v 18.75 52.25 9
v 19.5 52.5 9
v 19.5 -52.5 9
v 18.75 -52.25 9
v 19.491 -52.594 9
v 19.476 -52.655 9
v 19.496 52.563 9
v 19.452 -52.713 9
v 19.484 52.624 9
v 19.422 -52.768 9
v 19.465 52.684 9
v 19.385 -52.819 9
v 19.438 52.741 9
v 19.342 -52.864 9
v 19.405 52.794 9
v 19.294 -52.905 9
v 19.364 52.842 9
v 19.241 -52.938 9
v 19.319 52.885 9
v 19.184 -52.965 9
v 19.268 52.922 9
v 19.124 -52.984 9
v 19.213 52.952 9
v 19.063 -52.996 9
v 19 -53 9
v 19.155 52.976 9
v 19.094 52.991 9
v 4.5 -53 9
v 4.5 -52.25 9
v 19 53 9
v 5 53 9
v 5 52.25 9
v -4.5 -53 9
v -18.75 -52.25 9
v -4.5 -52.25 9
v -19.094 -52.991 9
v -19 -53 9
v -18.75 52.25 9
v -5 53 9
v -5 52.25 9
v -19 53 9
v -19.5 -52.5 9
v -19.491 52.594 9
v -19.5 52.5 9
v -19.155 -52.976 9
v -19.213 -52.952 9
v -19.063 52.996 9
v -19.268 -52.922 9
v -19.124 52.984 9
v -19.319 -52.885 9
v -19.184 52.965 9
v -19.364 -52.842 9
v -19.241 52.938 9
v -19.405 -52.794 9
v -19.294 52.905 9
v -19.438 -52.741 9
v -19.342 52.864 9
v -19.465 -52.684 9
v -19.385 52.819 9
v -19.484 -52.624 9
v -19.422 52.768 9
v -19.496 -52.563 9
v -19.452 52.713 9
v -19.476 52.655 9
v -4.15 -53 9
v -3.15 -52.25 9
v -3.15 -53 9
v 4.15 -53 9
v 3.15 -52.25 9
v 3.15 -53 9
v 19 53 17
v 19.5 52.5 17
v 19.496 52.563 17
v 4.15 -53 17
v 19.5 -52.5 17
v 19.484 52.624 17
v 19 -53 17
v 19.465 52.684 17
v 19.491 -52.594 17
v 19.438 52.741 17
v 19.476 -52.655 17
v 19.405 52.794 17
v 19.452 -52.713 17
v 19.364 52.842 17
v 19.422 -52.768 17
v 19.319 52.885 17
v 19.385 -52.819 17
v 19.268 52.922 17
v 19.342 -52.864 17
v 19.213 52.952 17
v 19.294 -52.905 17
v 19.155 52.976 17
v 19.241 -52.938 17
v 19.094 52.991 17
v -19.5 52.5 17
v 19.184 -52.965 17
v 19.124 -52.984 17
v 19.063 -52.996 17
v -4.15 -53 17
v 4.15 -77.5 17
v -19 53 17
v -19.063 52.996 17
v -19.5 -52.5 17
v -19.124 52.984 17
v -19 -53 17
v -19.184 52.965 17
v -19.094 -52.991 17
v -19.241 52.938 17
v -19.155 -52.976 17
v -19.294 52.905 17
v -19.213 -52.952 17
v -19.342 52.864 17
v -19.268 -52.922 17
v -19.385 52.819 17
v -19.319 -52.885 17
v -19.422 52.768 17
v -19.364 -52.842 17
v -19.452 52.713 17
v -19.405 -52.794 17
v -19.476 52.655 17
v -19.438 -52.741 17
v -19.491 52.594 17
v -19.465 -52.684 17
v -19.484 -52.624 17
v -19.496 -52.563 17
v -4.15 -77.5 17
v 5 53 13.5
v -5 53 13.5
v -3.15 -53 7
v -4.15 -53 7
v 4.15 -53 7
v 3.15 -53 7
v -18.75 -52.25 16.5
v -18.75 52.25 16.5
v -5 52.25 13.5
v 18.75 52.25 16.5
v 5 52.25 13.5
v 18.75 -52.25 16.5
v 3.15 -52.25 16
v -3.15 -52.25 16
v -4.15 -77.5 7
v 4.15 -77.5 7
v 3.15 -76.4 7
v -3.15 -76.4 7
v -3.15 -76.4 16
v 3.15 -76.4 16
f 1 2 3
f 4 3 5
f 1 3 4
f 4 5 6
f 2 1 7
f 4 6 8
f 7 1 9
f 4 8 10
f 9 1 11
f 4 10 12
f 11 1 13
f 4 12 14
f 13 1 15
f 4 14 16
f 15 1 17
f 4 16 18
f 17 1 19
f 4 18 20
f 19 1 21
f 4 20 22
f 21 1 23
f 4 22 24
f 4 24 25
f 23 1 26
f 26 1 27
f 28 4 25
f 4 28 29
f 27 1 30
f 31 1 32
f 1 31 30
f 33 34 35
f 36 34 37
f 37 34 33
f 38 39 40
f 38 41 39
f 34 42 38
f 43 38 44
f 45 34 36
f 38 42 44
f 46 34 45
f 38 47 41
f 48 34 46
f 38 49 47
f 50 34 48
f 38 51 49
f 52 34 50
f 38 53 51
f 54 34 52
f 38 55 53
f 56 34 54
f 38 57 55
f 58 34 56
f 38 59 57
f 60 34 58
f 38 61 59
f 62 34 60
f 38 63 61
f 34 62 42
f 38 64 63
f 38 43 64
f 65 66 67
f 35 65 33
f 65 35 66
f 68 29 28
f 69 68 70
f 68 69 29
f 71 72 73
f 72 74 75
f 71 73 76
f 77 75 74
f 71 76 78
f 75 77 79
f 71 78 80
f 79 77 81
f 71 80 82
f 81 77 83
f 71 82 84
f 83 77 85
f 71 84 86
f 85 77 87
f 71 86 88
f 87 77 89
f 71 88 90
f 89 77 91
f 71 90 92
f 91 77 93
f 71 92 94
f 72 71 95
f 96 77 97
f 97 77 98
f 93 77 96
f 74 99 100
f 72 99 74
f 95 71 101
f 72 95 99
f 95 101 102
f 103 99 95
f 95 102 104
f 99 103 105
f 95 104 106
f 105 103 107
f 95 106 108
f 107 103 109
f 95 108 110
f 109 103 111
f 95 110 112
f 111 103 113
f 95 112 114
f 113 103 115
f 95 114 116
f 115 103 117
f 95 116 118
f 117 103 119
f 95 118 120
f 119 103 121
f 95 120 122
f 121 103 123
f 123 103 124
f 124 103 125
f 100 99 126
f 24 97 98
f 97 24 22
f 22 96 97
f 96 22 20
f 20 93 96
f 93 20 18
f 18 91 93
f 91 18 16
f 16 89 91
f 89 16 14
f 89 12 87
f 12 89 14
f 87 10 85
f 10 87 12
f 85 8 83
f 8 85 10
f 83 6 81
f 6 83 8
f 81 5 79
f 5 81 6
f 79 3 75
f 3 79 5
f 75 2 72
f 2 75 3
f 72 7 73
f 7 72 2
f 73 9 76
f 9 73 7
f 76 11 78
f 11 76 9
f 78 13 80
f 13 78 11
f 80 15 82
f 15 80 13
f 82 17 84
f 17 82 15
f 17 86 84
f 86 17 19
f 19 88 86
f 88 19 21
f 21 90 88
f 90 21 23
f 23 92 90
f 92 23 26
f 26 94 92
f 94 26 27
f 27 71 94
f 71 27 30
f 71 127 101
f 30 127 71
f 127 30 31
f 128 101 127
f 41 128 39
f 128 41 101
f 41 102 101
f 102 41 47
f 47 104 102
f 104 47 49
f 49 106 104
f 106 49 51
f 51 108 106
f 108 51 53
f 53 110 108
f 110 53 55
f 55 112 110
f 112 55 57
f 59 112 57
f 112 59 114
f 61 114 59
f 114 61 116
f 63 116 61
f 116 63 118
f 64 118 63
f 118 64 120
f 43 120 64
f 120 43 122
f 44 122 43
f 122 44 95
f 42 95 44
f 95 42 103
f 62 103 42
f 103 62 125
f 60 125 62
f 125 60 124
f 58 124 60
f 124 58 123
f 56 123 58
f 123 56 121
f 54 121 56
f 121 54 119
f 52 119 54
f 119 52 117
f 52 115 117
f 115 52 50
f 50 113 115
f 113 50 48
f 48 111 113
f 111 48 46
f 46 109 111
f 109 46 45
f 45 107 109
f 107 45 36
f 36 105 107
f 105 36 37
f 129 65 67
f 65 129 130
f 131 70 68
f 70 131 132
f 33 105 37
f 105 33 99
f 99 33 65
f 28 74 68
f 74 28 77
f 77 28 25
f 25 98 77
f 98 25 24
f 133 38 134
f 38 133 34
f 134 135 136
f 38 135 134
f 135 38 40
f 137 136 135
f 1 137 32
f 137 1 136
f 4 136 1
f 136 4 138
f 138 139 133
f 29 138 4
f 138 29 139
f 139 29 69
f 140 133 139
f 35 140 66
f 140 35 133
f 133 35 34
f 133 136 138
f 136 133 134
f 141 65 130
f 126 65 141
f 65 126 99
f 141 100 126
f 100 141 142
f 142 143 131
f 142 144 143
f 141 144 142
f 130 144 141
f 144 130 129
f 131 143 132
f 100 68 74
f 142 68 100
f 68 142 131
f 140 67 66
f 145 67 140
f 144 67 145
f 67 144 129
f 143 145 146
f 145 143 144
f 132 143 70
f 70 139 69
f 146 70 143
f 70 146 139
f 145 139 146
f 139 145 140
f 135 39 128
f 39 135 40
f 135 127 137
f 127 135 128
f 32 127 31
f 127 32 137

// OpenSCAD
$fn=50;

BOX_W = 38;
BOX_L = 105;
BOX_H = 8.0;
WALL = 0.5;
CORNER_RADIUS = 0.5;

MIC_OUTSIDE_WIDTH=8.3;
MIC_OUTSIDE_HEIGHT=10.0;
MIC_INSIDE_WIDTH=6.3;
MIC_LENGTH=24.5;

MIC_OFFSET_X = 0;
MIC_OFFSET_Y = -34.0;
MIC_OFFSET_Z = 0;

VENT_OFFSET = -4.5;
VENT_L = 19.0;
VENT_R = -19.0;

module roundedRectangle(width, length, radius) {
    difference() {
        offset(r=radius) square([width, length], center=true);
        offset(r=radius - WALL) square([width - WALL, length - WALL], center=true);
    }
}

module mainLid() {
    // sides of box
    linear_extrude(BOX_H)
    roundedRectangle(BOX_W, BOX_L, CORNER_RADIUS);
    // base of box
    translate([0, 0, BOX_H - WALL]) {
        linear_extrude(WALL) square([BOX_W, BOX_L], center=true);
    }
}

module micBox() {
        translate([0, -53.0, 3])
        rotate([90, 0, 0])
        linear_extrude(MIC_LENGTH) square([MIC_OUTSIDE_WIDTH, MIC_OUTSIDE_HEIGHT], center=true);
    }
//}

module vent(x, y, vent_offset) {
    translate([x, y, BOX_H + vent_offset]) {
        rotate([90, 0, 90]) {
            cylinder(h=3.0, d=2.0, center=true);
        }
    }
}

module cutouts() {
    translate([MIC_OFFSET_X, MIC_OFFSET_Y, MIC_OFFSET_Z]) {
        // Inside mic channel
        translate([0, -13.8, BOX_H+3])
        rotate([90, 0, 0])
        linear_extrude(MIC_LENGTH+4.1) square([MIC_INSIDE_WIDTH, MIC_OUTSIDE_HEIGHT], center=true);
        
        // Mic lid clearance at mic box opening
        translate([0, -17, BOX_H-0.10])
        rotate([90, 0, 0])
        linear_extrude(2.0) square([9, 2.2], center=true);
    }

    // Cable exit
    translate([0, 54.0, BOX_H+2.5])
    rotate([90, 0, 0])
    linear_extrude(3.0) square([10, 6], center=true);

    /*
    // gas sensor vents
    vent(VENT_L, 29.0, VENT_OFFSET);
    vent(VENT_L, 21.0, VENT_OFFSET);
    vent(VENT_L, 13.0, VENT_OFFSET);
    vent(VENT_L, 5.0, VENT_OFFSET);
    vent(VENT_L, -3.0, VENT_OFFSET);
    vent(VENT_L, -11.0, VENT_OFFSET);
    
    vent(VENT_R, 29.0, VENT_OFFSET);
    vent(VENT_R, 21.0, VENT_OFFSET);
    vent(VENT_R, 13.0, VENT_OFFSET);
    vent(VENT_R, 5.0, VENT_OFFSET);
    vent(VENT_R, -3.0, VENT_OFFSET);
    vent(VENT_R, -11.0, VENT_OFFSET);
    */
}

difference() {
    union() {
        translate([0, 0, 9.0]) { // Moving the lid to the opposite side of the base frame
            mainLid();
            micBox();
        }
    }
    cutouts();
}
